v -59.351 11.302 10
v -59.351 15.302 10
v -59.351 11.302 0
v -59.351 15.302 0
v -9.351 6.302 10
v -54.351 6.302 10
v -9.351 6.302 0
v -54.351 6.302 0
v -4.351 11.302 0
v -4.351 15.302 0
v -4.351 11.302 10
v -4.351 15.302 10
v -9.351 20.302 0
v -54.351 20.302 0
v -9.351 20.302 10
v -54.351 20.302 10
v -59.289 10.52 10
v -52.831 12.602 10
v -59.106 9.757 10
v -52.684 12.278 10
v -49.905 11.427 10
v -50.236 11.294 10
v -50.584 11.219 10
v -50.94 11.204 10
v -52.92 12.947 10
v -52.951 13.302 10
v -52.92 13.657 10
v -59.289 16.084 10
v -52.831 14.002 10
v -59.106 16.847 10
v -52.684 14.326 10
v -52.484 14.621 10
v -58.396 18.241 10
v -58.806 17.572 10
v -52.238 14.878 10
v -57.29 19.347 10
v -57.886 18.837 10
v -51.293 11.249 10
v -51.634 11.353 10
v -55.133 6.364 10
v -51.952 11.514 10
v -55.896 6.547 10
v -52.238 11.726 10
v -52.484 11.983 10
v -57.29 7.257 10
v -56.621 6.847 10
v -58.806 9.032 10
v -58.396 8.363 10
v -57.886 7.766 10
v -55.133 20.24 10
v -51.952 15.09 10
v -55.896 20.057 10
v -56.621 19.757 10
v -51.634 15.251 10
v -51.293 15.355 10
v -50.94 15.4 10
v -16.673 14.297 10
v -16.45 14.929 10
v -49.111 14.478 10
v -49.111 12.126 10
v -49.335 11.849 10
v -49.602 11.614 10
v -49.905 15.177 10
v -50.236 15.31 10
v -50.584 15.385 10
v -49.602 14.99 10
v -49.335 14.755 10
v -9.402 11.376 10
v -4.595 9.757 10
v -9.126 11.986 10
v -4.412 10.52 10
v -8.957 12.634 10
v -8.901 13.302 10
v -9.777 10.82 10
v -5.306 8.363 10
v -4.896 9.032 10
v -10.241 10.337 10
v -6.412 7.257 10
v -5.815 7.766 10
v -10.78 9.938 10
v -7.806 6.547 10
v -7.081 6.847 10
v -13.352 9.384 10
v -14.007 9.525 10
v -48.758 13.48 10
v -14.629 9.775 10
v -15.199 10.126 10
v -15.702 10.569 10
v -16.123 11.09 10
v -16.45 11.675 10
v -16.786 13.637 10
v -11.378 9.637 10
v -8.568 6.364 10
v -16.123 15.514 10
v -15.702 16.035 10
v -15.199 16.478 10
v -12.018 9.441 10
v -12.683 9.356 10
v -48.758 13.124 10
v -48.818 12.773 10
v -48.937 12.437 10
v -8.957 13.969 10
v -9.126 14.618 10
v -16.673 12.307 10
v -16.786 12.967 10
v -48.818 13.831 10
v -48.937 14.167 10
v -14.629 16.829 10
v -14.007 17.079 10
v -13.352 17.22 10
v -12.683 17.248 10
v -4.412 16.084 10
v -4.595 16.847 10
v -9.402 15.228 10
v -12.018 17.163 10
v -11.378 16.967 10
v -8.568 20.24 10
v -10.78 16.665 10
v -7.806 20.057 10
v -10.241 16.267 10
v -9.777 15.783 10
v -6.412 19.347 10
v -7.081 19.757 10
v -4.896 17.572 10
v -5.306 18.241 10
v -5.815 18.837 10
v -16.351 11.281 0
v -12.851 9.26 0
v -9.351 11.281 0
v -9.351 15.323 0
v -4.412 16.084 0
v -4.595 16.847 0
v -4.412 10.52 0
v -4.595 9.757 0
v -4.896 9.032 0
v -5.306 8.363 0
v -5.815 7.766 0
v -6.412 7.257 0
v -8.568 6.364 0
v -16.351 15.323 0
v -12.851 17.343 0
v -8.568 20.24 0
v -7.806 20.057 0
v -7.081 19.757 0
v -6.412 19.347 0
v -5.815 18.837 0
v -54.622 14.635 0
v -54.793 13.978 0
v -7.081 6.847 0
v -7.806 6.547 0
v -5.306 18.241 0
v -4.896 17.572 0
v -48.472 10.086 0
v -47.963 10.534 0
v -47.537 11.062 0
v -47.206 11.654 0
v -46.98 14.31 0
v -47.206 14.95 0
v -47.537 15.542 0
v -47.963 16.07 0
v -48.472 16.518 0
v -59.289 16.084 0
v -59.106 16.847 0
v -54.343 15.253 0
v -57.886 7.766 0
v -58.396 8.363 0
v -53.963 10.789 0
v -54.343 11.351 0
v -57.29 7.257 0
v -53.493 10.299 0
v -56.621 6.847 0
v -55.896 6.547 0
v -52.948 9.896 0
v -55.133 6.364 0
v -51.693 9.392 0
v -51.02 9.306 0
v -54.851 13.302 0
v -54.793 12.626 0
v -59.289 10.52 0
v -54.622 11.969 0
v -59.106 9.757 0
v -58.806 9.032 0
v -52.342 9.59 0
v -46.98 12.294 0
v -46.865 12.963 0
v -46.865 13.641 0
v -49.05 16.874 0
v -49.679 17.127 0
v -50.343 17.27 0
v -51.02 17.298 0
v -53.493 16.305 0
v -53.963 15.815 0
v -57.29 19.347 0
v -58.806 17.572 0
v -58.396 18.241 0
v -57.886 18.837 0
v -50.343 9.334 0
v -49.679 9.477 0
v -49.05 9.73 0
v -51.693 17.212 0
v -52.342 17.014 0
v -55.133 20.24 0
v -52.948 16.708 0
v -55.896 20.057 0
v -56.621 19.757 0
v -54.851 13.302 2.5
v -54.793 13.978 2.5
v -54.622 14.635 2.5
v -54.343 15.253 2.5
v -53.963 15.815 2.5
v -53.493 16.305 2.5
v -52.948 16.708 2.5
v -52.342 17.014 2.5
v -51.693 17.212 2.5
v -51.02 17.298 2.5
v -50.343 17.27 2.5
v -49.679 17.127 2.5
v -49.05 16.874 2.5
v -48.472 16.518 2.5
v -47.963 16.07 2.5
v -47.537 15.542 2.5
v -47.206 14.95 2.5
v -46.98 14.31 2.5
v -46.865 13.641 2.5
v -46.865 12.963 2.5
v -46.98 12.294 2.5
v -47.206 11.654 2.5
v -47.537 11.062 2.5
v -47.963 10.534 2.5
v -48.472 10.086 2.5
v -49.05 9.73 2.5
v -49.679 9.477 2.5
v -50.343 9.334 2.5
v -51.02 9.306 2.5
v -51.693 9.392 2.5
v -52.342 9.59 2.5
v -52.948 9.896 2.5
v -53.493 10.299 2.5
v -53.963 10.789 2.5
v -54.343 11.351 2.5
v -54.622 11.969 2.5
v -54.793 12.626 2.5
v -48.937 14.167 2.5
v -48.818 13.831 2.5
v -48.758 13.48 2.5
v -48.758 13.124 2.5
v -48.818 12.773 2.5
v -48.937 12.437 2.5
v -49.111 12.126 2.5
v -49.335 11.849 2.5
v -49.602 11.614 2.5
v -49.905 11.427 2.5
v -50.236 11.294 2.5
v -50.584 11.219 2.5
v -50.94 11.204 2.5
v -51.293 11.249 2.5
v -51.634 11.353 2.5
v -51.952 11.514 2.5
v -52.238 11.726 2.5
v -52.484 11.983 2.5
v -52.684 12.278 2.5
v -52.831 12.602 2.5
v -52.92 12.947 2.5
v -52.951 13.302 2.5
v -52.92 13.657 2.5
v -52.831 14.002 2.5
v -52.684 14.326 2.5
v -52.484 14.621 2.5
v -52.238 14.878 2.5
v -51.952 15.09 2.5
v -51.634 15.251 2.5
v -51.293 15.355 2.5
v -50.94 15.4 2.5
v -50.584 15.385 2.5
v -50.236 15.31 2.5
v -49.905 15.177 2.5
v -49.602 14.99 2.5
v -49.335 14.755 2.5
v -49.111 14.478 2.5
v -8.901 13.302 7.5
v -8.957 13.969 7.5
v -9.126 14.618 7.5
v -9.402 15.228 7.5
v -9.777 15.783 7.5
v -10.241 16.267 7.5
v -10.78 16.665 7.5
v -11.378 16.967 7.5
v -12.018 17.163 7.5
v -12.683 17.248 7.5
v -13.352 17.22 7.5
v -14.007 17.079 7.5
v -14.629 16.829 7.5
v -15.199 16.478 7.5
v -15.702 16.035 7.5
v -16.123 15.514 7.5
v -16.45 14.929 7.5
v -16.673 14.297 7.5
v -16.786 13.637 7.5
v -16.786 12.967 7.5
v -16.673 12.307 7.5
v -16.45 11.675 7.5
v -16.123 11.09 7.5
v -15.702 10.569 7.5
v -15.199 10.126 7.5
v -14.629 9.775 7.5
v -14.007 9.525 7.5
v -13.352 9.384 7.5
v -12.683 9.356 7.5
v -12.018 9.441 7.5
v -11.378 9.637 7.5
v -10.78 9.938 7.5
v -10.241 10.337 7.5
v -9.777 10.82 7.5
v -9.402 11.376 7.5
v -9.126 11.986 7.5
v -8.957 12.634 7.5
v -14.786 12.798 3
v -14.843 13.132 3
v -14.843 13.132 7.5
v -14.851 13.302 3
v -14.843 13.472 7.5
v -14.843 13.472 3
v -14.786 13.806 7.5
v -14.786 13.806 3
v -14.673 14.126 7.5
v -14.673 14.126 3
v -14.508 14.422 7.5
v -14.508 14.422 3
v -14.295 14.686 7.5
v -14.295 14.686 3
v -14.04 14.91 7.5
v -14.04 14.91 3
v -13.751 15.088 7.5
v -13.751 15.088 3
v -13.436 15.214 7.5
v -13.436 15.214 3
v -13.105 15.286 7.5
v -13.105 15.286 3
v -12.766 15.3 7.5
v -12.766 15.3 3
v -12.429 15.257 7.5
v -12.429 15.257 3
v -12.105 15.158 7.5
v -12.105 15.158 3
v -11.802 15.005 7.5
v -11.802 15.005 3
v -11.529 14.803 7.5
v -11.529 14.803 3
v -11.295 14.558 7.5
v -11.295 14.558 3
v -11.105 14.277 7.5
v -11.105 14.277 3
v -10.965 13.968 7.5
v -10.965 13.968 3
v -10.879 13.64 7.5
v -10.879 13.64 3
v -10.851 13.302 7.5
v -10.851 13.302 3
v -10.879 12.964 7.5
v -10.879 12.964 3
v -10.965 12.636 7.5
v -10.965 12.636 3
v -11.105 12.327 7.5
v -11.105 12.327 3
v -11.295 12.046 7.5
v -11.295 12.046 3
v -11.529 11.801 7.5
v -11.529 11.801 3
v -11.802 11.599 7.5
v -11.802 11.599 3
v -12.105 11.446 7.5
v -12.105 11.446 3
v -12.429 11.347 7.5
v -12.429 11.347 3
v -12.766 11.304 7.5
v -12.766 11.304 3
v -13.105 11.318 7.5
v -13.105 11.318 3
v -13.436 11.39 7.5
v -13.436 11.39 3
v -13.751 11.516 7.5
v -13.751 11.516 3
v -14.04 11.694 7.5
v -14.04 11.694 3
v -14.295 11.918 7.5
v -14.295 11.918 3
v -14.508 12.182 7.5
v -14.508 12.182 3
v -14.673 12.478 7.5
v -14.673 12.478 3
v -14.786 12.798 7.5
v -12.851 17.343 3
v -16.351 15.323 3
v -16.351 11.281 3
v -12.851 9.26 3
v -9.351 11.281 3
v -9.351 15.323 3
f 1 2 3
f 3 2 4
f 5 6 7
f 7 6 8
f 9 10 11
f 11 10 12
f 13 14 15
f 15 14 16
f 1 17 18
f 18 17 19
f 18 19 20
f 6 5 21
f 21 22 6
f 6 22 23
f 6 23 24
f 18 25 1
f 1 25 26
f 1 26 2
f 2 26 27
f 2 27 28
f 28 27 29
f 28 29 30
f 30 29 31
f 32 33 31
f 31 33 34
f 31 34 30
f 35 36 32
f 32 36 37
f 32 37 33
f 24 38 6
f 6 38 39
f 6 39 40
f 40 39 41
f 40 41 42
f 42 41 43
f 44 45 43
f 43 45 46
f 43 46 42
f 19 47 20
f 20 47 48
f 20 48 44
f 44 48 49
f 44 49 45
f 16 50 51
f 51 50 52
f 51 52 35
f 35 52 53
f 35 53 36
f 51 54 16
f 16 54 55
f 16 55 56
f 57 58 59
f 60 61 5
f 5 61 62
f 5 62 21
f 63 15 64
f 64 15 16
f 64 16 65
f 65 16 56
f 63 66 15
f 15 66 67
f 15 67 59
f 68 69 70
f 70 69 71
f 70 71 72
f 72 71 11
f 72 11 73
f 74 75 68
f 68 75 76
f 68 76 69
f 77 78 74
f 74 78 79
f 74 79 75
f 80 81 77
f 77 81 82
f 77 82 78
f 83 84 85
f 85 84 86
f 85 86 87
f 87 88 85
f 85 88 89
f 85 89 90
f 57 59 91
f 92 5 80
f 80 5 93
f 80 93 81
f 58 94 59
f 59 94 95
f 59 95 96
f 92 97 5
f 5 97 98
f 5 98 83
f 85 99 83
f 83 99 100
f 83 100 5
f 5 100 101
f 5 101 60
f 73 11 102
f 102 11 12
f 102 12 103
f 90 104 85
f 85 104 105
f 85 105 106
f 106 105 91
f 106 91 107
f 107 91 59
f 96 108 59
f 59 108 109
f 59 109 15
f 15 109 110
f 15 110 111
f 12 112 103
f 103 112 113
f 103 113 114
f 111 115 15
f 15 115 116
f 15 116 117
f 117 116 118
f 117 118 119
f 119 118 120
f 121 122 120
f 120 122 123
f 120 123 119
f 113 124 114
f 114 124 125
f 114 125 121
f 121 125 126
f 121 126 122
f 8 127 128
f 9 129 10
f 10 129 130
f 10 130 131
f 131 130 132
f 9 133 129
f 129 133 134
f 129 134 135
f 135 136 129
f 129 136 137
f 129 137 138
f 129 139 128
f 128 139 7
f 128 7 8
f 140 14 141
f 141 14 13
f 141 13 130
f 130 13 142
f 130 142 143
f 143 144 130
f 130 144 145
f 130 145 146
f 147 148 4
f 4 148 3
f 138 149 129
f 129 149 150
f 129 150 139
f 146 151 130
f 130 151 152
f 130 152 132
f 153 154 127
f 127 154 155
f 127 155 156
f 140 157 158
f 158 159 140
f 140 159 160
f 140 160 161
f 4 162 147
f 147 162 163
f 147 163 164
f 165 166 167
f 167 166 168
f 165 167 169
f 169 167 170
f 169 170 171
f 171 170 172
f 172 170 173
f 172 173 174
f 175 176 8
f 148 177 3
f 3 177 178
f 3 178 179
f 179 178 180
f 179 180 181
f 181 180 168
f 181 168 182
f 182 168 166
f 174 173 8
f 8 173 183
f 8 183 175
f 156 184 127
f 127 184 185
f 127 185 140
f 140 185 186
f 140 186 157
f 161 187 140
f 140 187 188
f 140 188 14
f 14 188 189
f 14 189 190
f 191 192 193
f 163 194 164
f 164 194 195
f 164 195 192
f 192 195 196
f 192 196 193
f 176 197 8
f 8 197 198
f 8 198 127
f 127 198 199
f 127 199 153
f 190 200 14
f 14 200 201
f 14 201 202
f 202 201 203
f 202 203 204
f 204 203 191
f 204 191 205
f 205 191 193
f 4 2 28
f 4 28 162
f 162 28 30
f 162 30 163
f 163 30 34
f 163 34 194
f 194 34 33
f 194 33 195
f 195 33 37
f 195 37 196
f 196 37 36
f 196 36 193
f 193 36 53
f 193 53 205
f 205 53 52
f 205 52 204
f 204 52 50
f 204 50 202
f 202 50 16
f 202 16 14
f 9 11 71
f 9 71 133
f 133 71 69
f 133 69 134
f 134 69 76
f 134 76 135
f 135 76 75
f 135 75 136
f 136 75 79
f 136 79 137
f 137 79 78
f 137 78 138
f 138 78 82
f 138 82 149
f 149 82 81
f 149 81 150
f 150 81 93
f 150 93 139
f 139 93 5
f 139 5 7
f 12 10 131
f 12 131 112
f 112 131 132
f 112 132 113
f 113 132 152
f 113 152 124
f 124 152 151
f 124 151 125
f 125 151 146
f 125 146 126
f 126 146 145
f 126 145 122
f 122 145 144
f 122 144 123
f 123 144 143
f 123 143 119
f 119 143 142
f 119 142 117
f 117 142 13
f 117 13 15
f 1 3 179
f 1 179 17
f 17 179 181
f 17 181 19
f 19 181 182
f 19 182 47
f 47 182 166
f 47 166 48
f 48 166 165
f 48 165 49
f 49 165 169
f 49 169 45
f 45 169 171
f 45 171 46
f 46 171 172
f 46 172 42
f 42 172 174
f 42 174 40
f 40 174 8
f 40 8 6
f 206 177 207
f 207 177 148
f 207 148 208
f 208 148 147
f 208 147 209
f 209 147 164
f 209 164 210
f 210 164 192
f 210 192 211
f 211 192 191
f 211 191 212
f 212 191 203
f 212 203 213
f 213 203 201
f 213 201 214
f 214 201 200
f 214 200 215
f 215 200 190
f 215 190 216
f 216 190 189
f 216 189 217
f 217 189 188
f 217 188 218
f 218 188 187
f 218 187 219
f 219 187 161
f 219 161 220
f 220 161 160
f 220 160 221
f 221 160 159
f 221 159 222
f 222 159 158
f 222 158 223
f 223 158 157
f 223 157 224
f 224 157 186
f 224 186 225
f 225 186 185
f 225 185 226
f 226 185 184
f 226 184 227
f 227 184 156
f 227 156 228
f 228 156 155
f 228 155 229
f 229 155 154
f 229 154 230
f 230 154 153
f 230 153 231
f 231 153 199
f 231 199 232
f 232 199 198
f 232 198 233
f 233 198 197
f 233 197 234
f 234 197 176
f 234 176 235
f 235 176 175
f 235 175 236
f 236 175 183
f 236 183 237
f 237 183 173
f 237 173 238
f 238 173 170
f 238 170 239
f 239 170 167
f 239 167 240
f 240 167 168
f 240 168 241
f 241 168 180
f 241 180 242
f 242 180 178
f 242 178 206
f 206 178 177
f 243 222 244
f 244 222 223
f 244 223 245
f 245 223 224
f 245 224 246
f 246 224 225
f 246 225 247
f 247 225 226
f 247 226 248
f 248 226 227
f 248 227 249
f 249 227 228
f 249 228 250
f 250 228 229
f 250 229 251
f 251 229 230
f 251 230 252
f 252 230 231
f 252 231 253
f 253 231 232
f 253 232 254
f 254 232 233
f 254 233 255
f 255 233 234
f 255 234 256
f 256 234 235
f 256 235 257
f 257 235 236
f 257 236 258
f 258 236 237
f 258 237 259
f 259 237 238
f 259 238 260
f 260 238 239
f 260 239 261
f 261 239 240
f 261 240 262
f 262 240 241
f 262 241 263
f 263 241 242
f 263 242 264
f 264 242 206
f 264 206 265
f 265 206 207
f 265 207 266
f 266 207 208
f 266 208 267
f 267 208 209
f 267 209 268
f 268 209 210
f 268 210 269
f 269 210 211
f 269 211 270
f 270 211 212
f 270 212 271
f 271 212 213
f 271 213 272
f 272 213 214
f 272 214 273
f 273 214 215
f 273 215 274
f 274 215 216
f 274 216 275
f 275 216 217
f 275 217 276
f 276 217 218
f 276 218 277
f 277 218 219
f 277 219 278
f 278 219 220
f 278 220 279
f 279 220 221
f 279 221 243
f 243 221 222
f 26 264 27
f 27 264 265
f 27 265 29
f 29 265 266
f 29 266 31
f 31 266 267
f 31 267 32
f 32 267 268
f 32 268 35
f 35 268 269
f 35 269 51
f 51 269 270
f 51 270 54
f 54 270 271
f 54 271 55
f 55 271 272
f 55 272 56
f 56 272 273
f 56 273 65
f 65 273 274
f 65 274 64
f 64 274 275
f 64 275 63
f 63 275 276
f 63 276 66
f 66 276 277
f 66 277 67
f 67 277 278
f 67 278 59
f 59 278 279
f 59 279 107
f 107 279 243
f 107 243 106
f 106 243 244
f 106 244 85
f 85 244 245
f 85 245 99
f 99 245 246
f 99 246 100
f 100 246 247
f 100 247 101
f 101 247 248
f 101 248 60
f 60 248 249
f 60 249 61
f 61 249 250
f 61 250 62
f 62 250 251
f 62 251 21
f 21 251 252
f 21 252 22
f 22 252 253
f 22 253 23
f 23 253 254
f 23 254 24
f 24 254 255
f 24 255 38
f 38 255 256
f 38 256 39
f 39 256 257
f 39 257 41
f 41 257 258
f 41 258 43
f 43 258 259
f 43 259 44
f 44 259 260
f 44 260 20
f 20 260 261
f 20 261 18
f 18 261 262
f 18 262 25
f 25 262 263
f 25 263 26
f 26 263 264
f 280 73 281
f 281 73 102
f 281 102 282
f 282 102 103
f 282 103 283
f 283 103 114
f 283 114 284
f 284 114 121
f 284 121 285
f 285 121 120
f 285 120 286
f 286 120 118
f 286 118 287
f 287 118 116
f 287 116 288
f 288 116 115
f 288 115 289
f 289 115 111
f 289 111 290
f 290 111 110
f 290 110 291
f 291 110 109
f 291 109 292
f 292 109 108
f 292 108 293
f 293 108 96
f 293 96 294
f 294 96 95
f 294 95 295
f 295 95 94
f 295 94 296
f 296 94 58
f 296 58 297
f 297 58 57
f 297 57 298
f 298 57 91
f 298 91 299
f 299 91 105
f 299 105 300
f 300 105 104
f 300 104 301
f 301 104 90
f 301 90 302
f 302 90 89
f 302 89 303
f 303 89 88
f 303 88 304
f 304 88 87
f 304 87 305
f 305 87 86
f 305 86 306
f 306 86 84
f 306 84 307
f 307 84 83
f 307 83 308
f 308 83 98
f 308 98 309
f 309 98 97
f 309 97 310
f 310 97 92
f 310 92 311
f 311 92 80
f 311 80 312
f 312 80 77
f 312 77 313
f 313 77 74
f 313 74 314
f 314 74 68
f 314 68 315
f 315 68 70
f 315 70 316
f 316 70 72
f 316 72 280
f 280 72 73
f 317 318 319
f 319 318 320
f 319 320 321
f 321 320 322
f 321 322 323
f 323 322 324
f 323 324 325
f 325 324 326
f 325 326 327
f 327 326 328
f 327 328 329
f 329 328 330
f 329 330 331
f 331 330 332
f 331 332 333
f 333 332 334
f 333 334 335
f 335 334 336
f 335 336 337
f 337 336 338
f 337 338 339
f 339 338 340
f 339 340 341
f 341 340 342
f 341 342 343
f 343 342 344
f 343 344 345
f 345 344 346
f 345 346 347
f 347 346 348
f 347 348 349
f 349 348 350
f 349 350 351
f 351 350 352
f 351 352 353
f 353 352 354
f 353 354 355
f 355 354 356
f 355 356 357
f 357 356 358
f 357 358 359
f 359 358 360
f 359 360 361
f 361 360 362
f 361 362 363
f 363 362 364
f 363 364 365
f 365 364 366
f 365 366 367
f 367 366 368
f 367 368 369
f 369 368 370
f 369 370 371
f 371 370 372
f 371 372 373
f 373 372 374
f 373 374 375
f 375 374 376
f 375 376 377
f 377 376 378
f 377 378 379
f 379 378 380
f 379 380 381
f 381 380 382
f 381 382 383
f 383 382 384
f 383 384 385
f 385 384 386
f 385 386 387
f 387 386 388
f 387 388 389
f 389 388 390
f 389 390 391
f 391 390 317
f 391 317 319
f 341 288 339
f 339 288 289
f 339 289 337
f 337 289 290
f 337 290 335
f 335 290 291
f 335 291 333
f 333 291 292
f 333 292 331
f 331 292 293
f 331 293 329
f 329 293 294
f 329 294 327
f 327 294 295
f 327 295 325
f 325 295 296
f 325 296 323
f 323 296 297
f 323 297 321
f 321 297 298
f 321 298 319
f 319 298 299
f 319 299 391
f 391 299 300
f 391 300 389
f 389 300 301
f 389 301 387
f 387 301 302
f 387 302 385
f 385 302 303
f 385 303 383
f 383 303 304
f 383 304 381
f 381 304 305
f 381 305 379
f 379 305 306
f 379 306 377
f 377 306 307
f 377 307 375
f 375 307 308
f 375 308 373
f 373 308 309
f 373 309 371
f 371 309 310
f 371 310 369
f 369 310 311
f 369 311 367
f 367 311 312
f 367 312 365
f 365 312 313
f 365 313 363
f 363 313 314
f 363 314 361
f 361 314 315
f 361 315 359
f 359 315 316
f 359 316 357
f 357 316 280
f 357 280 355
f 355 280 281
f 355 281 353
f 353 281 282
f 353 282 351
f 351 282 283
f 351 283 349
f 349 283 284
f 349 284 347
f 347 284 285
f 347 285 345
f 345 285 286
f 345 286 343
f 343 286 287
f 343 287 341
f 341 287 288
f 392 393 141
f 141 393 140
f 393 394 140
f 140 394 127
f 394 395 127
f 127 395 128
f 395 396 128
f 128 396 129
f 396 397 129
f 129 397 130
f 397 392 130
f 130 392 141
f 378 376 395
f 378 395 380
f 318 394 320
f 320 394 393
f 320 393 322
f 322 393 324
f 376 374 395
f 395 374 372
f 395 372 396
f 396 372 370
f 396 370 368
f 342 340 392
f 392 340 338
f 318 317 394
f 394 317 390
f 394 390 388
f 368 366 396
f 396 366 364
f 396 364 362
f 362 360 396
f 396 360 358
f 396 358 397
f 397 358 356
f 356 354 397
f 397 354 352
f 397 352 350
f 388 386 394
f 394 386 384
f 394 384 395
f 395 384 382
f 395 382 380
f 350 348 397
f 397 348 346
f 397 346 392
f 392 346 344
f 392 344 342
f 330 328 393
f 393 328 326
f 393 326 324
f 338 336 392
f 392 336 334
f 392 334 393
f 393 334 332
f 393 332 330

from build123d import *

# Parameters (mm, degrees)
SKETCH1_W           = 55
SKETCH1_H           = 14
BOSS_EXTRUDE1_DEPTH = 10
FILLET1_R           = 5
FILLET2_R           = 5
SKETCH2_R           = 4
CUT_EXTRUDE2_DEPTH  = 2.5
SKETCH3_R           = 2.1
CUT_EXTRUDE3_DEPTH  = 2
SKETCH4_R           = 3.95
CUT_EXTRUDE4_DEPTH  = 5
CUT_EXTRUDE5_REACH  = 64.926
SKETCH5_R           = 2
SKETCH7_R           = 2.1
CUT_EXTRUDE6_DEPTH  = 63.967570185
BOSS_EXTRUDE2_START = 2.5
SKETCH9_R           = 3.95
SKETCH9_R_2         = 2
BOSS_EXTRUDE2_DEPTH = 2.5
CUT_EXTRUDE7_START  = -3
SKETCH10_R          = 2
CUT_EXTRUDE7_DEPTH  = 3


with BuildPart() as part:
    # Sketch1 → Boss-Extrude1 (new body)
    with BuildSketch(Plane.XY):
        with Locations((-31.850618243, 13.301945946)):
            Rectangle(SKETCH1_W, SKETCH1_H)
    extrude(amount=BOSS_EXTRUDE1_DEPTH)

    # Fillet1
    fillet1_edges = [part.edges().sort_by_distance(p)[0] for p in [
        (-59.350618243, 20.301945946, 5),
    ]]
    fillet(fillet1_edges, radius=FILLET1_R)

    # Fillet2
    fillet2_edges = [part.edges().sort_by_distance(p)[0] for p in [
        (-4.350618243, 20.301945946, 5),
        (-4.350618243, 6.301945946, 5),
        (-59.350618243, 6.301945946, 5),
    ]]
    fillet(fillet2_edges, radius=FILLET2_R)

    # Sketch2 → Cut-Extrude2 (cut)
    with BuildSketch(Plane(origin=(0, 0, 0), x_dir=(-1, 0, 0), z_dir=(0, 0, -1))):
        with Locations((50.850618243, 13.301945946)):
            Circle(SKETCH2_R)
    extrude(amount=-CUT_EXTRUDE2_DEPTH, mode=Mode.SUBTRACT)

    # Sketch3 → Cut-Extrude3 (cut)
    with BuildSketch(Plane(origin=(0, 0, 2.5), x_dir=(-1, 0, 0), z_dir=(0, 0, -1))):
        with Locations((50.850618243, 13.301945946)):
            Circle(SKETCH3_R)
    extrude(amount=-CUT_EXTRUDE3_DEPTH, mode=Mode.SUBTRACT)

    # Sketch4 → Cut-Extrude4 (cut)
    with BuildSketch(Plane.XY.offset(10)):
        with Locations((-12.850618243, 13.301945946)):
            Circle(SKETCH4_R)
    extrude(amount=-CUT_EXTRUDE4_DEPTH, mode=Mode.SUBTRACT)

    # Sketch5 → Cut-Extrude5 (cut, up to next)
    with BuildSketch(Plane.XY.offset(5), mode=Mode.PRIVATE) as cut_extrude5_sk1:
        with Locations((-12.850618243, 13.301945946)):
            Circle(SKETCH5_R)
    cut_extrude5_tool1 = extrude(cut_extrude5_sk1.sketch, amount=-CUT_EXTRUDE5_REACH, mode=Mode.PRIVATE) & part.part
    add(cut_extrude5_tool1.solids().sort_by_distance((-12.850618, 13.301946, 5))[0], mode=Mode.SUBTRACT)

    # Sketch7 → Cut-Extrude6 (cut, through all)
    with BuildSketch(Plane(origin=(0, 0, 4.5), x_dir=(-1, 0, 0), z_dir=(0, 0, -1))):
        with Locations((50.850618243, 13.301945946)):
            Circle(SKETCH7_R)
    extrude(amount=-CUT_EXTRUDE6_DEPTH, mode=Mode.SUBTRACT)

    # Sketch9 → Boss-Extrude2 (add)
    with BuildSketch(Plane.XY.offset(5).offset(BOSS_EXTRUDE2_START)):
        with Locations((-12.850618243, 13.301945946)):
            Circle(SKETCH9_R)
        with Locations((-12.850618243, 13.301945946)):
            Circle(SKETCH9_R_2, mode=Mode.SUBTRACT)
    extrude(amount=-BOSS_EXTRUDE2_DEPTH)

    # Sketch10 → Cut-Extrude7 (cut)
    with BuildSketch(Plane(origin=(0, 0, 0), x_dir=(-1, 0, 0), z_dir=(0, 0, -1)).offset(CUT_EXTRUDE7_START)):
        Polygon((12.850618243, 17.34339783), (9.350618243, 15.322671888), (9.350618243, 11.281220004), (12.850618243, 9.260494062), (16.350618243, 11.281220004), (16.350618243, 15.322671888), align=None)
        with Locations(Location((12.850618243, 13.301945946, 0), (0, 0, 180))):
            Circle(SKETCH10_R, mode=Mode.SUBTRACT)
    extrude(amount=CUT_EXTRUDE7_DEPTH, mode=Mode.SUBTRACT)


solid = part.part
